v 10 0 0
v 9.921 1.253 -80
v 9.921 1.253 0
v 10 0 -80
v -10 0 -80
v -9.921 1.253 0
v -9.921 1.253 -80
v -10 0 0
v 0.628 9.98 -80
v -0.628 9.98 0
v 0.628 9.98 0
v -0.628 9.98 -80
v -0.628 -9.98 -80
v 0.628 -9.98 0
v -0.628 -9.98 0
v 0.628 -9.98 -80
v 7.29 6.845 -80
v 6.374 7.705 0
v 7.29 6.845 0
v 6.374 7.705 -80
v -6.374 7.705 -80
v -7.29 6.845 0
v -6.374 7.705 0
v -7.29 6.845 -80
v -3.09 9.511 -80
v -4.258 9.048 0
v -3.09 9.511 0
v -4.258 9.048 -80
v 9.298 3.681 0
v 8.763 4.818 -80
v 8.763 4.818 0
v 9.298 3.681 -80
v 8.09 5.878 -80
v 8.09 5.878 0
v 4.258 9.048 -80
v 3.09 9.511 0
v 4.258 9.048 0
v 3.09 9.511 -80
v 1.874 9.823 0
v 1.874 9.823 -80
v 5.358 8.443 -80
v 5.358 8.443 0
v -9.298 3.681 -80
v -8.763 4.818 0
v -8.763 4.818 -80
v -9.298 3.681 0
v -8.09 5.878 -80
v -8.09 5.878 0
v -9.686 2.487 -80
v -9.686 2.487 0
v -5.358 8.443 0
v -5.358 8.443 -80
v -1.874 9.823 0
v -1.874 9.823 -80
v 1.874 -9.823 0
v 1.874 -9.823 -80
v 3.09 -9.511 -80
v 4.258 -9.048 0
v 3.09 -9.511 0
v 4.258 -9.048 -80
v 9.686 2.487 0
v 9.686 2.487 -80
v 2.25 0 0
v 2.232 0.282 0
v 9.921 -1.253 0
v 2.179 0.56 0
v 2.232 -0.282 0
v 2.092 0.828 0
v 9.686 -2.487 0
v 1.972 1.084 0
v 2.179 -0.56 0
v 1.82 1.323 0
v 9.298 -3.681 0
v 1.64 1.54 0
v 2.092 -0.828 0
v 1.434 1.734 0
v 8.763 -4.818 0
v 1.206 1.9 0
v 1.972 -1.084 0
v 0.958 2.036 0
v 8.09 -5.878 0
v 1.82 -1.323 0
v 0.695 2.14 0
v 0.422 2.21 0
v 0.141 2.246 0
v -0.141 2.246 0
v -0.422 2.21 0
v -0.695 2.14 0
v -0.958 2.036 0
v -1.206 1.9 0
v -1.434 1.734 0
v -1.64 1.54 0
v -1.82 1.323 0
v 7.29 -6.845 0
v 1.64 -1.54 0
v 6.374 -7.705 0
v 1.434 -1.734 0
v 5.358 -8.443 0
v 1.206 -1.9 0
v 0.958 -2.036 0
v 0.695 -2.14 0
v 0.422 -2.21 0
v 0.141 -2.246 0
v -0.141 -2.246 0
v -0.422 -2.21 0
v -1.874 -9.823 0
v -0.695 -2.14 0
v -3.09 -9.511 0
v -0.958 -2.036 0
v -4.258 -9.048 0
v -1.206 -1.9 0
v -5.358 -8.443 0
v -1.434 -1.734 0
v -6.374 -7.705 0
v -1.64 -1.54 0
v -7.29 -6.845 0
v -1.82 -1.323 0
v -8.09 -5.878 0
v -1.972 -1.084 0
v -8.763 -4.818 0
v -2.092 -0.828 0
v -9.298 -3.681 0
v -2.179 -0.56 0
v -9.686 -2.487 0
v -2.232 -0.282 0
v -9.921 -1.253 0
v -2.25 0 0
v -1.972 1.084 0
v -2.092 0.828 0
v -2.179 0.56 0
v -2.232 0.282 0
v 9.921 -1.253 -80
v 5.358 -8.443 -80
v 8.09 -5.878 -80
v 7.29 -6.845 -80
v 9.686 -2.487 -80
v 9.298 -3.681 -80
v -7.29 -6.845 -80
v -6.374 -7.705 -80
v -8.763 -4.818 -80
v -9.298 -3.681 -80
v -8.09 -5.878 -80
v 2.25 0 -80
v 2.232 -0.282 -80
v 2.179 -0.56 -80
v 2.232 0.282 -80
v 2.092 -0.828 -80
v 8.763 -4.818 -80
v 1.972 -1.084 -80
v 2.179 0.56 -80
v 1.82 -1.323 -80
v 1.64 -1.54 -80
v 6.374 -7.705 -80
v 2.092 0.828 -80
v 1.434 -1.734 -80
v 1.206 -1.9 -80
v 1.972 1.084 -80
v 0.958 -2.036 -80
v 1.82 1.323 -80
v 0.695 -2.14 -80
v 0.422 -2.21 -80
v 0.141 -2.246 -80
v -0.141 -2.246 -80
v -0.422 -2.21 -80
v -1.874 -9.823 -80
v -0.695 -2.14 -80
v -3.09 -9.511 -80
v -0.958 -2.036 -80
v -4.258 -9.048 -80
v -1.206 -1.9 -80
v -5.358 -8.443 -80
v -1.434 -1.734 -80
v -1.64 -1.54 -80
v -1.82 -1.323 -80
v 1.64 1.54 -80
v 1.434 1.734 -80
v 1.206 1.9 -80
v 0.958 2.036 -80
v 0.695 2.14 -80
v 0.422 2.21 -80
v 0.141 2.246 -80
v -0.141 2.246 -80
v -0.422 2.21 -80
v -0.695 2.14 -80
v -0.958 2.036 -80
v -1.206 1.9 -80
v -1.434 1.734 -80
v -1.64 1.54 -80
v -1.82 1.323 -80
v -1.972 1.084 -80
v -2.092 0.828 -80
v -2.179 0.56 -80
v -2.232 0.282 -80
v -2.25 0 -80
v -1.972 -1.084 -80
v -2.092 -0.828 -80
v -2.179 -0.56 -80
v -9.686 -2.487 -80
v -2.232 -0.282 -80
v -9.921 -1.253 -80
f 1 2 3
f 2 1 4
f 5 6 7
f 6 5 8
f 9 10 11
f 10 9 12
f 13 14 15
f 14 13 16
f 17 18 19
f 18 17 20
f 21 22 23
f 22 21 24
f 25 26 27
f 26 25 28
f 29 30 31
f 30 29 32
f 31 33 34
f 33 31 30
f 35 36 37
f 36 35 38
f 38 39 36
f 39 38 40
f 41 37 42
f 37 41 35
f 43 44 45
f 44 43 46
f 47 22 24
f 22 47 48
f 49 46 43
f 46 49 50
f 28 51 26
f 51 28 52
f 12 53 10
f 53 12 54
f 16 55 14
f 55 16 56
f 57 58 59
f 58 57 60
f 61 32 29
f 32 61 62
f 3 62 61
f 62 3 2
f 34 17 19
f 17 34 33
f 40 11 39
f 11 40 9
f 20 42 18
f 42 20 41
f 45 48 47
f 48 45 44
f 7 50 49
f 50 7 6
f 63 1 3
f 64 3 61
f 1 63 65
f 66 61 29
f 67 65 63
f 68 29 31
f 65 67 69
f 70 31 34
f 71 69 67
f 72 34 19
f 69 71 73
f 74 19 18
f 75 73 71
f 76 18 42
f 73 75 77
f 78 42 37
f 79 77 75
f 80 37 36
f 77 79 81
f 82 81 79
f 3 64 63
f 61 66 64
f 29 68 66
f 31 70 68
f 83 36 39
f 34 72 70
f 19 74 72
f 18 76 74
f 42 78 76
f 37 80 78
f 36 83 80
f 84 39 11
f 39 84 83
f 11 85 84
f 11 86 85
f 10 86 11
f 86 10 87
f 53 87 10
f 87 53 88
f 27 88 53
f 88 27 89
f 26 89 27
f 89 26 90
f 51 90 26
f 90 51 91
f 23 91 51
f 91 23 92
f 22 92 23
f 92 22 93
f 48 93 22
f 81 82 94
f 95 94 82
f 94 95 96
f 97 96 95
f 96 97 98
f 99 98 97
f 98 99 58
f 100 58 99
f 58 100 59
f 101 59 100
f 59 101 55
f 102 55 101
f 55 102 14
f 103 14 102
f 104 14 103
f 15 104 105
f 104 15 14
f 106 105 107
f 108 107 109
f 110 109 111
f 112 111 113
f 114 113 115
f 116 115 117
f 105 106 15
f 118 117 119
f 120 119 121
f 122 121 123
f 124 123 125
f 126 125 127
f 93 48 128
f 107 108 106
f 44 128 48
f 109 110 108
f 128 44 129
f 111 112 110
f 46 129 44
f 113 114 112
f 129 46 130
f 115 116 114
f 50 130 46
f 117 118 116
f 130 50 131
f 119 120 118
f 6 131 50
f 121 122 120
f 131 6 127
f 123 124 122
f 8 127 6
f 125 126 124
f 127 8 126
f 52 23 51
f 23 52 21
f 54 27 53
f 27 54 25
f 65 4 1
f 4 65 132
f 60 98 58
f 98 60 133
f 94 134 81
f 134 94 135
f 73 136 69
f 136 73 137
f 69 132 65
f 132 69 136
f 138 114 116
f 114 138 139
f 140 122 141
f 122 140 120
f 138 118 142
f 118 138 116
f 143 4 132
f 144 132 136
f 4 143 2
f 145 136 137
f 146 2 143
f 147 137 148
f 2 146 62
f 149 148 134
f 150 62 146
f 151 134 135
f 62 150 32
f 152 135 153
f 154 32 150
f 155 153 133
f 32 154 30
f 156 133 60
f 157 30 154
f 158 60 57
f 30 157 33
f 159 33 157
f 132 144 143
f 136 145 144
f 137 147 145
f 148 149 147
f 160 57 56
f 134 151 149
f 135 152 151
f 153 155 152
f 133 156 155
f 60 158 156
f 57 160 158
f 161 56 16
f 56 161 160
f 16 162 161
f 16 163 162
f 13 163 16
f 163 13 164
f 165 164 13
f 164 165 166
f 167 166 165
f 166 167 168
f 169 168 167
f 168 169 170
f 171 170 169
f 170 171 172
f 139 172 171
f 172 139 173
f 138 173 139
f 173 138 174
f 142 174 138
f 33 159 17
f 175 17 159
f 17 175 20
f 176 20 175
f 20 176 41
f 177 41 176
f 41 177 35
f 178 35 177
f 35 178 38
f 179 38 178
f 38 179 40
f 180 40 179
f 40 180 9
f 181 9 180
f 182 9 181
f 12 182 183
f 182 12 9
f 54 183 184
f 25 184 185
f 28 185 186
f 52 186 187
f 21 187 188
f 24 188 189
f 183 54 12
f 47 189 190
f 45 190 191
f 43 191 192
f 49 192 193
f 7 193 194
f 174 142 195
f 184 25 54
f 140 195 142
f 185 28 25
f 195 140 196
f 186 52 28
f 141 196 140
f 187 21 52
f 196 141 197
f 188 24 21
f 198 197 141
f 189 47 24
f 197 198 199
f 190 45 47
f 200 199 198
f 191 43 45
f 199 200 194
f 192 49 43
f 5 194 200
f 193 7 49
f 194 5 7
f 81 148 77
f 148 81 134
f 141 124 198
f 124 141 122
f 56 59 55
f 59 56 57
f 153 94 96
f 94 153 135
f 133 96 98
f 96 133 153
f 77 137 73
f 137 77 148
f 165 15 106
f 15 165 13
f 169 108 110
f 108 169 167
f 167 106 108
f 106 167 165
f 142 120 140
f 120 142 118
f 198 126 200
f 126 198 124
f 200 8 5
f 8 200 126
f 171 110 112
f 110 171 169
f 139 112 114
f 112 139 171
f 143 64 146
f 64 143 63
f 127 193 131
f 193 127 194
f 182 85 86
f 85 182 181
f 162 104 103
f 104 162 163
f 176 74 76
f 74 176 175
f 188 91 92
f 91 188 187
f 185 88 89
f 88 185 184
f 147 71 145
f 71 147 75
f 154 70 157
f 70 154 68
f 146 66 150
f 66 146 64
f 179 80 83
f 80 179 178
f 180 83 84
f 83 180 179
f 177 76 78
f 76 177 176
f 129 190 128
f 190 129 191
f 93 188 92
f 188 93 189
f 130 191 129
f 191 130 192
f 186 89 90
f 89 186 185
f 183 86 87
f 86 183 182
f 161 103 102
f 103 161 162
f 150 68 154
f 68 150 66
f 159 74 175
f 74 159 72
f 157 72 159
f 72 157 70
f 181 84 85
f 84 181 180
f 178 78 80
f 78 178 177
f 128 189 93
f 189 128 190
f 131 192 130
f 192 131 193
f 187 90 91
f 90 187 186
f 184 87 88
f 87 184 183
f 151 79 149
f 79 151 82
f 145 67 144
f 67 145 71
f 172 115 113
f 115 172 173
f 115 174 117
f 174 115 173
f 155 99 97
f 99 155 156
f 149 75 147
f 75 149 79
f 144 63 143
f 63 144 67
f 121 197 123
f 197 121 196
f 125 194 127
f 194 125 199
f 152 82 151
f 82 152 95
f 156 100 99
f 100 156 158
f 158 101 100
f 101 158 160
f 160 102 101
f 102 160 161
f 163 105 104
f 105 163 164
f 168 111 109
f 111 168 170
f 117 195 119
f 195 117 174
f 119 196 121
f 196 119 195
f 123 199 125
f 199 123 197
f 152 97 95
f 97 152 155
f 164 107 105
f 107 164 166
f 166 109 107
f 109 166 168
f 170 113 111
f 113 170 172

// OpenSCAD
$fn = 50;


difference() {
	union() {
		translate(v = [0, 0, -80.0000000000]) {
			cylinder(h = 80, r = 10.0000000000);
		}
		cylinder(h = 0, r = 13.0000000000);
	}
	union() {
		#translate(v = [0, 0, -80]) {
			cylinder(h = 80, r = 2.2500000000);
		}
	}
}
